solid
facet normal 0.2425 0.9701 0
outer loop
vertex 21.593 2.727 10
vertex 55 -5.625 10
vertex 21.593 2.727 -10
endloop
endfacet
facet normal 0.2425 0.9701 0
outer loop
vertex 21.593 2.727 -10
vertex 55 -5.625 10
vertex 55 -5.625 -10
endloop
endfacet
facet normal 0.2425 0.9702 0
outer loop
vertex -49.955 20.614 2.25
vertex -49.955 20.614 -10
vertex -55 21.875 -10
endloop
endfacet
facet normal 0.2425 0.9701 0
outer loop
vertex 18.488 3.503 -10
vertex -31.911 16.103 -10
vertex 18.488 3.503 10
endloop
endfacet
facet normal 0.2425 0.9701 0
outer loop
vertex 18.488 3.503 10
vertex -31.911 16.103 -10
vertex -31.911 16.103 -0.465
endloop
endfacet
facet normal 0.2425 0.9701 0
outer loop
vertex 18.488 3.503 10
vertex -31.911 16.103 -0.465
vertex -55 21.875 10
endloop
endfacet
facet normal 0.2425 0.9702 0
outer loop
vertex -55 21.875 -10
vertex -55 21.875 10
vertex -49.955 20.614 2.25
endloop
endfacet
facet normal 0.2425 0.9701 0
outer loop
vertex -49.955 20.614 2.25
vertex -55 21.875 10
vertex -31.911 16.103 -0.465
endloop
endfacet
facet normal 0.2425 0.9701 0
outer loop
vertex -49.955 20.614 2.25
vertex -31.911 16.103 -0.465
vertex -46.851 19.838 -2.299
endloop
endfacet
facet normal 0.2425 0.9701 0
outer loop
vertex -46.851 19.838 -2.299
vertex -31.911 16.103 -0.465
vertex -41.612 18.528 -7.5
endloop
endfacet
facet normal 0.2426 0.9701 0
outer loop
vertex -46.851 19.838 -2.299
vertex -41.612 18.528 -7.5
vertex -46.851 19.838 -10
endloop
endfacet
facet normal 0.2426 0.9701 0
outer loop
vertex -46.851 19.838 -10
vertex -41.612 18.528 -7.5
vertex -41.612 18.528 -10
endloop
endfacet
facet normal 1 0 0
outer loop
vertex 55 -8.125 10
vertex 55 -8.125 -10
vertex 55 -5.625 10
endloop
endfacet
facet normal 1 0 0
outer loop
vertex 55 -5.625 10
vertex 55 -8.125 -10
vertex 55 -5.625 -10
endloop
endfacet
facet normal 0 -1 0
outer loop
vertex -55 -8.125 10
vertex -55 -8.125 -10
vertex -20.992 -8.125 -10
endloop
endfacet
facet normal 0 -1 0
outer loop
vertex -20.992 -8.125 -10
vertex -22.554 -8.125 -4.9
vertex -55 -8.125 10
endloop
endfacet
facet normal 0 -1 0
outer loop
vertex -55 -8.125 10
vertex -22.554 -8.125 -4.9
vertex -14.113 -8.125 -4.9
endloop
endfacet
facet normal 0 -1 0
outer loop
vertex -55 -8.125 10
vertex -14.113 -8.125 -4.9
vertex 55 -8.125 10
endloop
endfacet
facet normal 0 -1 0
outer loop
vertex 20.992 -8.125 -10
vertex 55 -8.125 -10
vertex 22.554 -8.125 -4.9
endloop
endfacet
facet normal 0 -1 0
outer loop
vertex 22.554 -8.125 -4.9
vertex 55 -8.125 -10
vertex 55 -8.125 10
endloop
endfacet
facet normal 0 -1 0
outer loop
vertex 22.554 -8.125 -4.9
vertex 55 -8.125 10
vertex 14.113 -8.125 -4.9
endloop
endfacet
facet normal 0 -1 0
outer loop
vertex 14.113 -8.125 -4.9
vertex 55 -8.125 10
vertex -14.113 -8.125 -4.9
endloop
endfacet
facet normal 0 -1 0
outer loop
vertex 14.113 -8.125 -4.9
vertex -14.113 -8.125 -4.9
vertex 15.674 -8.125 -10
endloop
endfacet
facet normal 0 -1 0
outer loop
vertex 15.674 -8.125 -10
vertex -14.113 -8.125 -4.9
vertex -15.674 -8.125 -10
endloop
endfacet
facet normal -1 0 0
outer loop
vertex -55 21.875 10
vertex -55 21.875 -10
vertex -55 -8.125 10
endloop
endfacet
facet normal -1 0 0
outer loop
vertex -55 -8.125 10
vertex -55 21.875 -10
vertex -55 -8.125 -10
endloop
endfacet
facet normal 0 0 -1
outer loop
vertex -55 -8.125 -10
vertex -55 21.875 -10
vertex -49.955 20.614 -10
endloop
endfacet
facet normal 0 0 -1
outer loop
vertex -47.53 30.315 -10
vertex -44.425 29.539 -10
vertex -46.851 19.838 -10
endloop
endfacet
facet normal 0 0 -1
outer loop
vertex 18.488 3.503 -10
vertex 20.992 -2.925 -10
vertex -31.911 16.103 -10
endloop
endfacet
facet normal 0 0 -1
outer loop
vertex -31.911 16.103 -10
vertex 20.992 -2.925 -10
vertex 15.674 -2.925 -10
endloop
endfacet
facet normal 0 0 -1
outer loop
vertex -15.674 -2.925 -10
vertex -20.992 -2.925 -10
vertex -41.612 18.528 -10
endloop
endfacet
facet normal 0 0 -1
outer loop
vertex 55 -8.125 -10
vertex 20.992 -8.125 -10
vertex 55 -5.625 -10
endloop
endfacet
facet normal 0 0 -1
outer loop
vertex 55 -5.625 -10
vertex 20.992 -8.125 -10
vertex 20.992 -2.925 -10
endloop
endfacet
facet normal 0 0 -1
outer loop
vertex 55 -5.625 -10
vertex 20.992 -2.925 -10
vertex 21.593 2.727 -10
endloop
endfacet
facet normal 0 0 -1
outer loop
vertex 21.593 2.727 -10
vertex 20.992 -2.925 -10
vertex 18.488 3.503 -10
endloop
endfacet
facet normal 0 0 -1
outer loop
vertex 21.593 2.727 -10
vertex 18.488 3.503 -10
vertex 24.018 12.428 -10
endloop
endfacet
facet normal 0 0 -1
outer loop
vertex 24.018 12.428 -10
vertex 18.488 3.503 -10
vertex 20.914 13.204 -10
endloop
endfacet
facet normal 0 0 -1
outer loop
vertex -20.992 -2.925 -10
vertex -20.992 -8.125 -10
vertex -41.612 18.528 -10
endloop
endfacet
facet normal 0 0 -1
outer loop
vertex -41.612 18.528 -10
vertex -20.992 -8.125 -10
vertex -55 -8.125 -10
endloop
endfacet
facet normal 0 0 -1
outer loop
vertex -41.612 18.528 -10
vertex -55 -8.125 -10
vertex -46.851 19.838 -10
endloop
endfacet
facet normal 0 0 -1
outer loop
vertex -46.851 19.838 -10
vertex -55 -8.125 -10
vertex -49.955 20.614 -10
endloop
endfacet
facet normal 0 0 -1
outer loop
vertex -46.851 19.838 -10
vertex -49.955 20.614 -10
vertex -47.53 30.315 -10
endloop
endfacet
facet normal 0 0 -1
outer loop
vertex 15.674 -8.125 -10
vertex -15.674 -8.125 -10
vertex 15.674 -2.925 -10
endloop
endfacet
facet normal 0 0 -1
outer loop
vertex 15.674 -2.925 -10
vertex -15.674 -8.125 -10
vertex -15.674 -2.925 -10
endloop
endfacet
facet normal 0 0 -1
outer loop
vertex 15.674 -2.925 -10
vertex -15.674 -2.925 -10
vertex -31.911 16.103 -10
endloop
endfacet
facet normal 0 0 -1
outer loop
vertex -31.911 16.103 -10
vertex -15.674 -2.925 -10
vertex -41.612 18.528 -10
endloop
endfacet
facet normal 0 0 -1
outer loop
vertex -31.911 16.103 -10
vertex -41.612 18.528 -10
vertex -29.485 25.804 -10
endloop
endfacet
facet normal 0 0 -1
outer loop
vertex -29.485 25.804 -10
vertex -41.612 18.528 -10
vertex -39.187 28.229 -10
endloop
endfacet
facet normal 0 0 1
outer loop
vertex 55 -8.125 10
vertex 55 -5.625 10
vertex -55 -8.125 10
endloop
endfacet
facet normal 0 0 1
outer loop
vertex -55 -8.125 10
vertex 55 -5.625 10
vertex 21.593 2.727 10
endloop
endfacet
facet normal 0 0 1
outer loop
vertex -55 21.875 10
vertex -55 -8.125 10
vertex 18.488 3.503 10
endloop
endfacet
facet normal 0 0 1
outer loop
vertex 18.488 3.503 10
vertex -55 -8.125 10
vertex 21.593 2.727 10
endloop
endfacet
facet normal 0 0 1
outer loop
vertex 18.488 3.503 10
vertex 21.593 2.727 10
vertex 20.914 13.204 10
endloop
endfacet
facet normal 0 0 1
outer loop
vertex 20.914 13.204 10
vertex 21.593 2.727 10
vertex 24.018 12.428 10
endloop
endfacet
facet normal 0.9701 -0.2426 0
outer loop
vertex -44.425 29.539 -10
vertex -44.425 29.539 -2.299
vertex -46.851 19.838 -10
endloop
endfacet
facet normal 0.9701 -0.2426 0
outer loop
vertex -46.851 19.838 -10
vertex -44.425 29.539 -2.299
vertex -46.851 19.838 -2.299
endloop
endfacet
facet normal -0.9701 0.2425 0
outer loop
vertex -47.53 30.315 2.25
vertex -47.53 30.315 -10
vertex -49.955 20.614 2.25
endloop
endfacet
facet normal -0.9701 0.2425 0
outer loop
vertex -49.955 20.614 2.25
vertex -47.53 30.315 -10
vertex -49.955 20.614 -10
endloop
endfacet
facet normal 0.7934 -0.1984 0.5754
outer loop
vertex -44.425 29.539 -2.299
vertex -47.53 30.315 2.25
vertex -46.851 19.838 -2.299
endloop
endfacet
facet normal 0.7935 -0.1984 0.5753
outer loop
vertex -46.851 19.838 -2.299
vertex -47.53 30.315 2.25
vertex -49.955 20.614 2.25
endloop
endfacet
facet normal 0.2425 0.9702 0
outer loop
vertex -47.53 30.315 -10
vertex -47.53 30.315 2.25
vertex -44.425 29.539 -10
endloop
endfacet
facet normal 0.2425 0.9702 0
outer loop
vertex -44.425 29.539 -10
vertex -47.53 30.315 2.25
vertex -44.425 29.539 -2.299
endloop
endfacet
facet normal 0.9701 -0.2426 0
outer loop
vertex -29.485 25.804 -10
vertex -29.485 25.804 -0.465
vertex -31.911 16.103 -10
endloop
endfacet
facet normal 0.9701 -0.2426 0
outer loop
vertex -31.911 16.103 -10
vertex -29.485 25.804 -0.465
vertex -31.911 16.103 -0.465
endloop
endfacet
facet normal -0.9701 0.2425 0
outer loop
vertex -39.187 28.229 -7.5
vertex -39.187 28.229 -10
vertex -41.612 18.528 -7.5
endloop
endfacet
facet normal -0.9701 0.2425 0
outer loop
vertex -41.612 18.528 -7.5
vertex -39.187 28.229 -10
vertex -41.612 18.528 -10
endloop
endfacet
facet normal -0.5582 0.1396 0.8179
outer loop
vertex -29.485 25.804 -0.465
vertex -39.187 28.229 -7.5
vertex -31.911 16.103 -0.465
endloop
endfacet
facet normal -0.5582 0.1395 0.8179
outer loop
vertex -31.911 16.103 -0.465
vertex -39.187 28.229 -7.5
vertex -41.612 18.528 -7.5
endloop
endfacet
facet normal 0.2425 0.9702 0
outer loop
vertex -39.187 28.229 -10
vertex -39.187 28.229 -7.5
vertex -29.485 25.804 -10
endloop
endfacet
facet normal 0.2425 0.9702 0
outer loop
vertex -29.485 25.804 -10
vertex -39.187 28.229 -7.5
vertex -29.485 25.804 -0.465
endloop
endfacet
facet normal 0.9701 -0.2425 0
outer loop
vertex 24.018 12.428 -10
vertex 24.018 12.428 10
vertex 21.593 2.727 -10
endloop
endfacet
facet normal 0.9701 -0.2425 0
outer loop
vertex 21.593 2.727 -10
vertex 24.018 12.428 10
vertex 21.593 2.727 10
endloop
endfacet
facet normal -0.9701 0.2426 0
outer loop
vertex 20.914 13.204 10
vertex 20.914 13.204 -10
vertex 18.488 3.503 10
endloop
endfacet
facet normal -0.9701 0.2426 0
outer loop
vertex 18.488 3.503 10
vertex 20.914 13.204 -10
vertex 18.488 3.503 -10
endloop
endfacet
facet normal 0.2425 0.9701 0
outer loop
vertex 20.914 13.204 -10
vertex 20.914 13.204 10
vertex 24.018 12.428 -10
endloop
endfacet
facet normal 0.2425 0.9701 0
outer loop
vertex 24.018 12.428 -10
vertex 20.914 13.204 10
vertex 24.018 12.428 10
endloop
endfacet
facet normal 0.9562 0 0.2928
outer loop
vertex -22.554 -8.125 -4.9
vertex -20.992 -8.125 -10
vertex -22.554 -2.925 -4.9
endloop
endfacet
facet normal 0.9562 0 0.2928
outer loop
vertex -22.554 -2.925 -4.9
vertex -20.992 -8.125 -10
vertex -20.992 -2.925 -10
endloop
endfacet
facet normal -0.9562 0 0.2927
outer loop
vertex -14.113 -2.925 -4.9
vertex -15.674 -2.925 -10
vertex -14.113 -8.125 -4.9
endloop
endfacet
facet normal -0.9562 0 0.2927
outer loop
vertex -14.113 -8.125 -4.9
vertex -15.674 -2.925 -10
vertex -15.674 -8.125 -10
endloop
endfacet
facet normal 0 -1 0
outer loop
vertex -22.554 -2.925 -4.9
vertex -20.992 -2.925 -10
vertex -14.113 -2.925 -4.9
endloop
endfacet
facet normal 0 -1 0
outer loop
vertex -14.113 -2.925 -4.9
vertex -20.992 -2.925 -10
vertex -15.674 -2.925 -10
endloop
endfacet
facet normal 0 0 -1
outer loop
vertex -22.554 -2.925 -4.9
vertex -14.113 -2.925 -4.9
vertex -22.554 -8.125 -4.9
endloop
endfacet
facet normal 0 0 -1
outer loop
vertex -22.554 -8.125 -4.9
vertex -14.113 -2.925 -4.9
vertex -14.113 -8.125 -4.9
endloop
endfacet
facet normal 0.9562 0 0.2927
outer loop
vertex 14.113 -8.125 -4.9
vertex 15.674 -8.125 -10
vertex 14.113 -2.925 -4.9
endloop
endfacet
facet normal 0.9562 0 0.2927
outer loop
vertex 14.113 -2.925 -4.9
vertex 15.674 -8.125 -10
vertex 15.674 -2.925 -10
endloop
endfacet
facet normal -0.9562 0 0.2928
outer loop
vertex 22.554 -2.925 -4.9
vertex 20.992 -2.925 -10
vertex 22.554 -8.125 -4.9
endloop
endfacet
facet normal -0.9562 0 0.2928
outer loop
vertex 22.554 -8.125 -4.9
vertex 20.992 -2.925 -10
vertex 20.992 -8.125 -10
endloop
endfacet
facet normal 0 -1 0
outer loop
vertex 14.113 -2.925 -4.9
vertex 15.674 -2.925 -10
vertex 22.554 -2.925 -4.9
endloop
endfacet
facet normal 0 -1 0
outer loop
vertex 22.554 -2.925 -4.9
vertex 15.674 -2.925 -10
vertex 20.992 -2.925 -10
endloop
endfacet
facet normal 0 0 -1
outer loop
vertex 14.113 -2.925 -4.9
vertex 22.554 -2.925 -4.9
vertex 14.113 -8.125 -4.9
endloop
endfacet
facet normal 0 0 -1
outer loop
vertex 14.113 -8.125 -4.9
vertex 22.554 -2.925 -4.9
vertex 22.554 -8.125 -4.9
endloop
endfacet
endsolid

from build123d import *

# Parameters (mm, degrees)
BOSS_EXTRUDE1_DEPTH      = 10
BOSS_EXTRUDE1_DEPTH_BACK = 10
SKETCH2_W                = 3.2
SKETCH2_H                = 20
BOSS_EXTRUDE2_DEPTH      = 10
CUT_EXTRUDE1_START       = -5.2
CUT_EXTRUDE1_DEPTH       = 5.2


# Read off the part's stored shape, not the designer's step: Cut-Extrude1
with BuildPart() as part:
    # Sketch1 → Boss-Extrude1 (new, two sides: drawn at the far end of the back side and taken through both)
    with BuildSketch(Plane.XY.offset(-BOSS_EXTRUDE1_DEPTH_BACK)):
        Polygon((-55, 21.875), (55, -5.625), (55, -8.125), (-55, -8.125), align=None)
    extrude(amount=BOSS_EXTRUDE1_DEPTH + BOSS_EXTRUDE1_DEPTH_BACK)

    # Sketch2 → Boss-Extrude2 (add)
    with BuildSketch(Plane(origin=(1.911764706, 7.647058824, 0), x_dir=(0.970142500145332, -0.24253562503633289, 0), z_dir=(0.24253562503633289, 0.970142500145332, 0))):
        Polygon((-53.463304306, 10), (-50.263304306, 10), (-50.263304306, 2.29875108), (-53.463304306, -2.25), align=None)
        Polygon((-44.863304306, 10), (-44.863304306, 7.5), (-34.863304306, 0.465101973), (-34.863304306, 10), align=None)
        with Locations((18.686695694, 0)):
            Rectangle(SKETCH2_W, SKETCH2_H)
    extrude(amount=BOSS_EXTRUDE2_DEPTH)

    # Cut-Extrude1 outline → Cut-Extrude1 (cut)
    with BuildSketch(Plane.XZ.offset(8.125).offset(CUT_EXTRUDE1_START)):
        Polygon((-14.11294757, -4.9), (-22.553719096, -4.9), (-20.992494606, -10), (-15.67417206, -10), align=None)
        Polygon((14.11294757, -4.9), (15.67417206, -10), (20.992494606, -10), (22.553719096, -4.9), align=None)
    extrude(amount=CUT_EXTRUDE1_DEPTH, mode=Mode.SUBTRACT)


solid = part.part
